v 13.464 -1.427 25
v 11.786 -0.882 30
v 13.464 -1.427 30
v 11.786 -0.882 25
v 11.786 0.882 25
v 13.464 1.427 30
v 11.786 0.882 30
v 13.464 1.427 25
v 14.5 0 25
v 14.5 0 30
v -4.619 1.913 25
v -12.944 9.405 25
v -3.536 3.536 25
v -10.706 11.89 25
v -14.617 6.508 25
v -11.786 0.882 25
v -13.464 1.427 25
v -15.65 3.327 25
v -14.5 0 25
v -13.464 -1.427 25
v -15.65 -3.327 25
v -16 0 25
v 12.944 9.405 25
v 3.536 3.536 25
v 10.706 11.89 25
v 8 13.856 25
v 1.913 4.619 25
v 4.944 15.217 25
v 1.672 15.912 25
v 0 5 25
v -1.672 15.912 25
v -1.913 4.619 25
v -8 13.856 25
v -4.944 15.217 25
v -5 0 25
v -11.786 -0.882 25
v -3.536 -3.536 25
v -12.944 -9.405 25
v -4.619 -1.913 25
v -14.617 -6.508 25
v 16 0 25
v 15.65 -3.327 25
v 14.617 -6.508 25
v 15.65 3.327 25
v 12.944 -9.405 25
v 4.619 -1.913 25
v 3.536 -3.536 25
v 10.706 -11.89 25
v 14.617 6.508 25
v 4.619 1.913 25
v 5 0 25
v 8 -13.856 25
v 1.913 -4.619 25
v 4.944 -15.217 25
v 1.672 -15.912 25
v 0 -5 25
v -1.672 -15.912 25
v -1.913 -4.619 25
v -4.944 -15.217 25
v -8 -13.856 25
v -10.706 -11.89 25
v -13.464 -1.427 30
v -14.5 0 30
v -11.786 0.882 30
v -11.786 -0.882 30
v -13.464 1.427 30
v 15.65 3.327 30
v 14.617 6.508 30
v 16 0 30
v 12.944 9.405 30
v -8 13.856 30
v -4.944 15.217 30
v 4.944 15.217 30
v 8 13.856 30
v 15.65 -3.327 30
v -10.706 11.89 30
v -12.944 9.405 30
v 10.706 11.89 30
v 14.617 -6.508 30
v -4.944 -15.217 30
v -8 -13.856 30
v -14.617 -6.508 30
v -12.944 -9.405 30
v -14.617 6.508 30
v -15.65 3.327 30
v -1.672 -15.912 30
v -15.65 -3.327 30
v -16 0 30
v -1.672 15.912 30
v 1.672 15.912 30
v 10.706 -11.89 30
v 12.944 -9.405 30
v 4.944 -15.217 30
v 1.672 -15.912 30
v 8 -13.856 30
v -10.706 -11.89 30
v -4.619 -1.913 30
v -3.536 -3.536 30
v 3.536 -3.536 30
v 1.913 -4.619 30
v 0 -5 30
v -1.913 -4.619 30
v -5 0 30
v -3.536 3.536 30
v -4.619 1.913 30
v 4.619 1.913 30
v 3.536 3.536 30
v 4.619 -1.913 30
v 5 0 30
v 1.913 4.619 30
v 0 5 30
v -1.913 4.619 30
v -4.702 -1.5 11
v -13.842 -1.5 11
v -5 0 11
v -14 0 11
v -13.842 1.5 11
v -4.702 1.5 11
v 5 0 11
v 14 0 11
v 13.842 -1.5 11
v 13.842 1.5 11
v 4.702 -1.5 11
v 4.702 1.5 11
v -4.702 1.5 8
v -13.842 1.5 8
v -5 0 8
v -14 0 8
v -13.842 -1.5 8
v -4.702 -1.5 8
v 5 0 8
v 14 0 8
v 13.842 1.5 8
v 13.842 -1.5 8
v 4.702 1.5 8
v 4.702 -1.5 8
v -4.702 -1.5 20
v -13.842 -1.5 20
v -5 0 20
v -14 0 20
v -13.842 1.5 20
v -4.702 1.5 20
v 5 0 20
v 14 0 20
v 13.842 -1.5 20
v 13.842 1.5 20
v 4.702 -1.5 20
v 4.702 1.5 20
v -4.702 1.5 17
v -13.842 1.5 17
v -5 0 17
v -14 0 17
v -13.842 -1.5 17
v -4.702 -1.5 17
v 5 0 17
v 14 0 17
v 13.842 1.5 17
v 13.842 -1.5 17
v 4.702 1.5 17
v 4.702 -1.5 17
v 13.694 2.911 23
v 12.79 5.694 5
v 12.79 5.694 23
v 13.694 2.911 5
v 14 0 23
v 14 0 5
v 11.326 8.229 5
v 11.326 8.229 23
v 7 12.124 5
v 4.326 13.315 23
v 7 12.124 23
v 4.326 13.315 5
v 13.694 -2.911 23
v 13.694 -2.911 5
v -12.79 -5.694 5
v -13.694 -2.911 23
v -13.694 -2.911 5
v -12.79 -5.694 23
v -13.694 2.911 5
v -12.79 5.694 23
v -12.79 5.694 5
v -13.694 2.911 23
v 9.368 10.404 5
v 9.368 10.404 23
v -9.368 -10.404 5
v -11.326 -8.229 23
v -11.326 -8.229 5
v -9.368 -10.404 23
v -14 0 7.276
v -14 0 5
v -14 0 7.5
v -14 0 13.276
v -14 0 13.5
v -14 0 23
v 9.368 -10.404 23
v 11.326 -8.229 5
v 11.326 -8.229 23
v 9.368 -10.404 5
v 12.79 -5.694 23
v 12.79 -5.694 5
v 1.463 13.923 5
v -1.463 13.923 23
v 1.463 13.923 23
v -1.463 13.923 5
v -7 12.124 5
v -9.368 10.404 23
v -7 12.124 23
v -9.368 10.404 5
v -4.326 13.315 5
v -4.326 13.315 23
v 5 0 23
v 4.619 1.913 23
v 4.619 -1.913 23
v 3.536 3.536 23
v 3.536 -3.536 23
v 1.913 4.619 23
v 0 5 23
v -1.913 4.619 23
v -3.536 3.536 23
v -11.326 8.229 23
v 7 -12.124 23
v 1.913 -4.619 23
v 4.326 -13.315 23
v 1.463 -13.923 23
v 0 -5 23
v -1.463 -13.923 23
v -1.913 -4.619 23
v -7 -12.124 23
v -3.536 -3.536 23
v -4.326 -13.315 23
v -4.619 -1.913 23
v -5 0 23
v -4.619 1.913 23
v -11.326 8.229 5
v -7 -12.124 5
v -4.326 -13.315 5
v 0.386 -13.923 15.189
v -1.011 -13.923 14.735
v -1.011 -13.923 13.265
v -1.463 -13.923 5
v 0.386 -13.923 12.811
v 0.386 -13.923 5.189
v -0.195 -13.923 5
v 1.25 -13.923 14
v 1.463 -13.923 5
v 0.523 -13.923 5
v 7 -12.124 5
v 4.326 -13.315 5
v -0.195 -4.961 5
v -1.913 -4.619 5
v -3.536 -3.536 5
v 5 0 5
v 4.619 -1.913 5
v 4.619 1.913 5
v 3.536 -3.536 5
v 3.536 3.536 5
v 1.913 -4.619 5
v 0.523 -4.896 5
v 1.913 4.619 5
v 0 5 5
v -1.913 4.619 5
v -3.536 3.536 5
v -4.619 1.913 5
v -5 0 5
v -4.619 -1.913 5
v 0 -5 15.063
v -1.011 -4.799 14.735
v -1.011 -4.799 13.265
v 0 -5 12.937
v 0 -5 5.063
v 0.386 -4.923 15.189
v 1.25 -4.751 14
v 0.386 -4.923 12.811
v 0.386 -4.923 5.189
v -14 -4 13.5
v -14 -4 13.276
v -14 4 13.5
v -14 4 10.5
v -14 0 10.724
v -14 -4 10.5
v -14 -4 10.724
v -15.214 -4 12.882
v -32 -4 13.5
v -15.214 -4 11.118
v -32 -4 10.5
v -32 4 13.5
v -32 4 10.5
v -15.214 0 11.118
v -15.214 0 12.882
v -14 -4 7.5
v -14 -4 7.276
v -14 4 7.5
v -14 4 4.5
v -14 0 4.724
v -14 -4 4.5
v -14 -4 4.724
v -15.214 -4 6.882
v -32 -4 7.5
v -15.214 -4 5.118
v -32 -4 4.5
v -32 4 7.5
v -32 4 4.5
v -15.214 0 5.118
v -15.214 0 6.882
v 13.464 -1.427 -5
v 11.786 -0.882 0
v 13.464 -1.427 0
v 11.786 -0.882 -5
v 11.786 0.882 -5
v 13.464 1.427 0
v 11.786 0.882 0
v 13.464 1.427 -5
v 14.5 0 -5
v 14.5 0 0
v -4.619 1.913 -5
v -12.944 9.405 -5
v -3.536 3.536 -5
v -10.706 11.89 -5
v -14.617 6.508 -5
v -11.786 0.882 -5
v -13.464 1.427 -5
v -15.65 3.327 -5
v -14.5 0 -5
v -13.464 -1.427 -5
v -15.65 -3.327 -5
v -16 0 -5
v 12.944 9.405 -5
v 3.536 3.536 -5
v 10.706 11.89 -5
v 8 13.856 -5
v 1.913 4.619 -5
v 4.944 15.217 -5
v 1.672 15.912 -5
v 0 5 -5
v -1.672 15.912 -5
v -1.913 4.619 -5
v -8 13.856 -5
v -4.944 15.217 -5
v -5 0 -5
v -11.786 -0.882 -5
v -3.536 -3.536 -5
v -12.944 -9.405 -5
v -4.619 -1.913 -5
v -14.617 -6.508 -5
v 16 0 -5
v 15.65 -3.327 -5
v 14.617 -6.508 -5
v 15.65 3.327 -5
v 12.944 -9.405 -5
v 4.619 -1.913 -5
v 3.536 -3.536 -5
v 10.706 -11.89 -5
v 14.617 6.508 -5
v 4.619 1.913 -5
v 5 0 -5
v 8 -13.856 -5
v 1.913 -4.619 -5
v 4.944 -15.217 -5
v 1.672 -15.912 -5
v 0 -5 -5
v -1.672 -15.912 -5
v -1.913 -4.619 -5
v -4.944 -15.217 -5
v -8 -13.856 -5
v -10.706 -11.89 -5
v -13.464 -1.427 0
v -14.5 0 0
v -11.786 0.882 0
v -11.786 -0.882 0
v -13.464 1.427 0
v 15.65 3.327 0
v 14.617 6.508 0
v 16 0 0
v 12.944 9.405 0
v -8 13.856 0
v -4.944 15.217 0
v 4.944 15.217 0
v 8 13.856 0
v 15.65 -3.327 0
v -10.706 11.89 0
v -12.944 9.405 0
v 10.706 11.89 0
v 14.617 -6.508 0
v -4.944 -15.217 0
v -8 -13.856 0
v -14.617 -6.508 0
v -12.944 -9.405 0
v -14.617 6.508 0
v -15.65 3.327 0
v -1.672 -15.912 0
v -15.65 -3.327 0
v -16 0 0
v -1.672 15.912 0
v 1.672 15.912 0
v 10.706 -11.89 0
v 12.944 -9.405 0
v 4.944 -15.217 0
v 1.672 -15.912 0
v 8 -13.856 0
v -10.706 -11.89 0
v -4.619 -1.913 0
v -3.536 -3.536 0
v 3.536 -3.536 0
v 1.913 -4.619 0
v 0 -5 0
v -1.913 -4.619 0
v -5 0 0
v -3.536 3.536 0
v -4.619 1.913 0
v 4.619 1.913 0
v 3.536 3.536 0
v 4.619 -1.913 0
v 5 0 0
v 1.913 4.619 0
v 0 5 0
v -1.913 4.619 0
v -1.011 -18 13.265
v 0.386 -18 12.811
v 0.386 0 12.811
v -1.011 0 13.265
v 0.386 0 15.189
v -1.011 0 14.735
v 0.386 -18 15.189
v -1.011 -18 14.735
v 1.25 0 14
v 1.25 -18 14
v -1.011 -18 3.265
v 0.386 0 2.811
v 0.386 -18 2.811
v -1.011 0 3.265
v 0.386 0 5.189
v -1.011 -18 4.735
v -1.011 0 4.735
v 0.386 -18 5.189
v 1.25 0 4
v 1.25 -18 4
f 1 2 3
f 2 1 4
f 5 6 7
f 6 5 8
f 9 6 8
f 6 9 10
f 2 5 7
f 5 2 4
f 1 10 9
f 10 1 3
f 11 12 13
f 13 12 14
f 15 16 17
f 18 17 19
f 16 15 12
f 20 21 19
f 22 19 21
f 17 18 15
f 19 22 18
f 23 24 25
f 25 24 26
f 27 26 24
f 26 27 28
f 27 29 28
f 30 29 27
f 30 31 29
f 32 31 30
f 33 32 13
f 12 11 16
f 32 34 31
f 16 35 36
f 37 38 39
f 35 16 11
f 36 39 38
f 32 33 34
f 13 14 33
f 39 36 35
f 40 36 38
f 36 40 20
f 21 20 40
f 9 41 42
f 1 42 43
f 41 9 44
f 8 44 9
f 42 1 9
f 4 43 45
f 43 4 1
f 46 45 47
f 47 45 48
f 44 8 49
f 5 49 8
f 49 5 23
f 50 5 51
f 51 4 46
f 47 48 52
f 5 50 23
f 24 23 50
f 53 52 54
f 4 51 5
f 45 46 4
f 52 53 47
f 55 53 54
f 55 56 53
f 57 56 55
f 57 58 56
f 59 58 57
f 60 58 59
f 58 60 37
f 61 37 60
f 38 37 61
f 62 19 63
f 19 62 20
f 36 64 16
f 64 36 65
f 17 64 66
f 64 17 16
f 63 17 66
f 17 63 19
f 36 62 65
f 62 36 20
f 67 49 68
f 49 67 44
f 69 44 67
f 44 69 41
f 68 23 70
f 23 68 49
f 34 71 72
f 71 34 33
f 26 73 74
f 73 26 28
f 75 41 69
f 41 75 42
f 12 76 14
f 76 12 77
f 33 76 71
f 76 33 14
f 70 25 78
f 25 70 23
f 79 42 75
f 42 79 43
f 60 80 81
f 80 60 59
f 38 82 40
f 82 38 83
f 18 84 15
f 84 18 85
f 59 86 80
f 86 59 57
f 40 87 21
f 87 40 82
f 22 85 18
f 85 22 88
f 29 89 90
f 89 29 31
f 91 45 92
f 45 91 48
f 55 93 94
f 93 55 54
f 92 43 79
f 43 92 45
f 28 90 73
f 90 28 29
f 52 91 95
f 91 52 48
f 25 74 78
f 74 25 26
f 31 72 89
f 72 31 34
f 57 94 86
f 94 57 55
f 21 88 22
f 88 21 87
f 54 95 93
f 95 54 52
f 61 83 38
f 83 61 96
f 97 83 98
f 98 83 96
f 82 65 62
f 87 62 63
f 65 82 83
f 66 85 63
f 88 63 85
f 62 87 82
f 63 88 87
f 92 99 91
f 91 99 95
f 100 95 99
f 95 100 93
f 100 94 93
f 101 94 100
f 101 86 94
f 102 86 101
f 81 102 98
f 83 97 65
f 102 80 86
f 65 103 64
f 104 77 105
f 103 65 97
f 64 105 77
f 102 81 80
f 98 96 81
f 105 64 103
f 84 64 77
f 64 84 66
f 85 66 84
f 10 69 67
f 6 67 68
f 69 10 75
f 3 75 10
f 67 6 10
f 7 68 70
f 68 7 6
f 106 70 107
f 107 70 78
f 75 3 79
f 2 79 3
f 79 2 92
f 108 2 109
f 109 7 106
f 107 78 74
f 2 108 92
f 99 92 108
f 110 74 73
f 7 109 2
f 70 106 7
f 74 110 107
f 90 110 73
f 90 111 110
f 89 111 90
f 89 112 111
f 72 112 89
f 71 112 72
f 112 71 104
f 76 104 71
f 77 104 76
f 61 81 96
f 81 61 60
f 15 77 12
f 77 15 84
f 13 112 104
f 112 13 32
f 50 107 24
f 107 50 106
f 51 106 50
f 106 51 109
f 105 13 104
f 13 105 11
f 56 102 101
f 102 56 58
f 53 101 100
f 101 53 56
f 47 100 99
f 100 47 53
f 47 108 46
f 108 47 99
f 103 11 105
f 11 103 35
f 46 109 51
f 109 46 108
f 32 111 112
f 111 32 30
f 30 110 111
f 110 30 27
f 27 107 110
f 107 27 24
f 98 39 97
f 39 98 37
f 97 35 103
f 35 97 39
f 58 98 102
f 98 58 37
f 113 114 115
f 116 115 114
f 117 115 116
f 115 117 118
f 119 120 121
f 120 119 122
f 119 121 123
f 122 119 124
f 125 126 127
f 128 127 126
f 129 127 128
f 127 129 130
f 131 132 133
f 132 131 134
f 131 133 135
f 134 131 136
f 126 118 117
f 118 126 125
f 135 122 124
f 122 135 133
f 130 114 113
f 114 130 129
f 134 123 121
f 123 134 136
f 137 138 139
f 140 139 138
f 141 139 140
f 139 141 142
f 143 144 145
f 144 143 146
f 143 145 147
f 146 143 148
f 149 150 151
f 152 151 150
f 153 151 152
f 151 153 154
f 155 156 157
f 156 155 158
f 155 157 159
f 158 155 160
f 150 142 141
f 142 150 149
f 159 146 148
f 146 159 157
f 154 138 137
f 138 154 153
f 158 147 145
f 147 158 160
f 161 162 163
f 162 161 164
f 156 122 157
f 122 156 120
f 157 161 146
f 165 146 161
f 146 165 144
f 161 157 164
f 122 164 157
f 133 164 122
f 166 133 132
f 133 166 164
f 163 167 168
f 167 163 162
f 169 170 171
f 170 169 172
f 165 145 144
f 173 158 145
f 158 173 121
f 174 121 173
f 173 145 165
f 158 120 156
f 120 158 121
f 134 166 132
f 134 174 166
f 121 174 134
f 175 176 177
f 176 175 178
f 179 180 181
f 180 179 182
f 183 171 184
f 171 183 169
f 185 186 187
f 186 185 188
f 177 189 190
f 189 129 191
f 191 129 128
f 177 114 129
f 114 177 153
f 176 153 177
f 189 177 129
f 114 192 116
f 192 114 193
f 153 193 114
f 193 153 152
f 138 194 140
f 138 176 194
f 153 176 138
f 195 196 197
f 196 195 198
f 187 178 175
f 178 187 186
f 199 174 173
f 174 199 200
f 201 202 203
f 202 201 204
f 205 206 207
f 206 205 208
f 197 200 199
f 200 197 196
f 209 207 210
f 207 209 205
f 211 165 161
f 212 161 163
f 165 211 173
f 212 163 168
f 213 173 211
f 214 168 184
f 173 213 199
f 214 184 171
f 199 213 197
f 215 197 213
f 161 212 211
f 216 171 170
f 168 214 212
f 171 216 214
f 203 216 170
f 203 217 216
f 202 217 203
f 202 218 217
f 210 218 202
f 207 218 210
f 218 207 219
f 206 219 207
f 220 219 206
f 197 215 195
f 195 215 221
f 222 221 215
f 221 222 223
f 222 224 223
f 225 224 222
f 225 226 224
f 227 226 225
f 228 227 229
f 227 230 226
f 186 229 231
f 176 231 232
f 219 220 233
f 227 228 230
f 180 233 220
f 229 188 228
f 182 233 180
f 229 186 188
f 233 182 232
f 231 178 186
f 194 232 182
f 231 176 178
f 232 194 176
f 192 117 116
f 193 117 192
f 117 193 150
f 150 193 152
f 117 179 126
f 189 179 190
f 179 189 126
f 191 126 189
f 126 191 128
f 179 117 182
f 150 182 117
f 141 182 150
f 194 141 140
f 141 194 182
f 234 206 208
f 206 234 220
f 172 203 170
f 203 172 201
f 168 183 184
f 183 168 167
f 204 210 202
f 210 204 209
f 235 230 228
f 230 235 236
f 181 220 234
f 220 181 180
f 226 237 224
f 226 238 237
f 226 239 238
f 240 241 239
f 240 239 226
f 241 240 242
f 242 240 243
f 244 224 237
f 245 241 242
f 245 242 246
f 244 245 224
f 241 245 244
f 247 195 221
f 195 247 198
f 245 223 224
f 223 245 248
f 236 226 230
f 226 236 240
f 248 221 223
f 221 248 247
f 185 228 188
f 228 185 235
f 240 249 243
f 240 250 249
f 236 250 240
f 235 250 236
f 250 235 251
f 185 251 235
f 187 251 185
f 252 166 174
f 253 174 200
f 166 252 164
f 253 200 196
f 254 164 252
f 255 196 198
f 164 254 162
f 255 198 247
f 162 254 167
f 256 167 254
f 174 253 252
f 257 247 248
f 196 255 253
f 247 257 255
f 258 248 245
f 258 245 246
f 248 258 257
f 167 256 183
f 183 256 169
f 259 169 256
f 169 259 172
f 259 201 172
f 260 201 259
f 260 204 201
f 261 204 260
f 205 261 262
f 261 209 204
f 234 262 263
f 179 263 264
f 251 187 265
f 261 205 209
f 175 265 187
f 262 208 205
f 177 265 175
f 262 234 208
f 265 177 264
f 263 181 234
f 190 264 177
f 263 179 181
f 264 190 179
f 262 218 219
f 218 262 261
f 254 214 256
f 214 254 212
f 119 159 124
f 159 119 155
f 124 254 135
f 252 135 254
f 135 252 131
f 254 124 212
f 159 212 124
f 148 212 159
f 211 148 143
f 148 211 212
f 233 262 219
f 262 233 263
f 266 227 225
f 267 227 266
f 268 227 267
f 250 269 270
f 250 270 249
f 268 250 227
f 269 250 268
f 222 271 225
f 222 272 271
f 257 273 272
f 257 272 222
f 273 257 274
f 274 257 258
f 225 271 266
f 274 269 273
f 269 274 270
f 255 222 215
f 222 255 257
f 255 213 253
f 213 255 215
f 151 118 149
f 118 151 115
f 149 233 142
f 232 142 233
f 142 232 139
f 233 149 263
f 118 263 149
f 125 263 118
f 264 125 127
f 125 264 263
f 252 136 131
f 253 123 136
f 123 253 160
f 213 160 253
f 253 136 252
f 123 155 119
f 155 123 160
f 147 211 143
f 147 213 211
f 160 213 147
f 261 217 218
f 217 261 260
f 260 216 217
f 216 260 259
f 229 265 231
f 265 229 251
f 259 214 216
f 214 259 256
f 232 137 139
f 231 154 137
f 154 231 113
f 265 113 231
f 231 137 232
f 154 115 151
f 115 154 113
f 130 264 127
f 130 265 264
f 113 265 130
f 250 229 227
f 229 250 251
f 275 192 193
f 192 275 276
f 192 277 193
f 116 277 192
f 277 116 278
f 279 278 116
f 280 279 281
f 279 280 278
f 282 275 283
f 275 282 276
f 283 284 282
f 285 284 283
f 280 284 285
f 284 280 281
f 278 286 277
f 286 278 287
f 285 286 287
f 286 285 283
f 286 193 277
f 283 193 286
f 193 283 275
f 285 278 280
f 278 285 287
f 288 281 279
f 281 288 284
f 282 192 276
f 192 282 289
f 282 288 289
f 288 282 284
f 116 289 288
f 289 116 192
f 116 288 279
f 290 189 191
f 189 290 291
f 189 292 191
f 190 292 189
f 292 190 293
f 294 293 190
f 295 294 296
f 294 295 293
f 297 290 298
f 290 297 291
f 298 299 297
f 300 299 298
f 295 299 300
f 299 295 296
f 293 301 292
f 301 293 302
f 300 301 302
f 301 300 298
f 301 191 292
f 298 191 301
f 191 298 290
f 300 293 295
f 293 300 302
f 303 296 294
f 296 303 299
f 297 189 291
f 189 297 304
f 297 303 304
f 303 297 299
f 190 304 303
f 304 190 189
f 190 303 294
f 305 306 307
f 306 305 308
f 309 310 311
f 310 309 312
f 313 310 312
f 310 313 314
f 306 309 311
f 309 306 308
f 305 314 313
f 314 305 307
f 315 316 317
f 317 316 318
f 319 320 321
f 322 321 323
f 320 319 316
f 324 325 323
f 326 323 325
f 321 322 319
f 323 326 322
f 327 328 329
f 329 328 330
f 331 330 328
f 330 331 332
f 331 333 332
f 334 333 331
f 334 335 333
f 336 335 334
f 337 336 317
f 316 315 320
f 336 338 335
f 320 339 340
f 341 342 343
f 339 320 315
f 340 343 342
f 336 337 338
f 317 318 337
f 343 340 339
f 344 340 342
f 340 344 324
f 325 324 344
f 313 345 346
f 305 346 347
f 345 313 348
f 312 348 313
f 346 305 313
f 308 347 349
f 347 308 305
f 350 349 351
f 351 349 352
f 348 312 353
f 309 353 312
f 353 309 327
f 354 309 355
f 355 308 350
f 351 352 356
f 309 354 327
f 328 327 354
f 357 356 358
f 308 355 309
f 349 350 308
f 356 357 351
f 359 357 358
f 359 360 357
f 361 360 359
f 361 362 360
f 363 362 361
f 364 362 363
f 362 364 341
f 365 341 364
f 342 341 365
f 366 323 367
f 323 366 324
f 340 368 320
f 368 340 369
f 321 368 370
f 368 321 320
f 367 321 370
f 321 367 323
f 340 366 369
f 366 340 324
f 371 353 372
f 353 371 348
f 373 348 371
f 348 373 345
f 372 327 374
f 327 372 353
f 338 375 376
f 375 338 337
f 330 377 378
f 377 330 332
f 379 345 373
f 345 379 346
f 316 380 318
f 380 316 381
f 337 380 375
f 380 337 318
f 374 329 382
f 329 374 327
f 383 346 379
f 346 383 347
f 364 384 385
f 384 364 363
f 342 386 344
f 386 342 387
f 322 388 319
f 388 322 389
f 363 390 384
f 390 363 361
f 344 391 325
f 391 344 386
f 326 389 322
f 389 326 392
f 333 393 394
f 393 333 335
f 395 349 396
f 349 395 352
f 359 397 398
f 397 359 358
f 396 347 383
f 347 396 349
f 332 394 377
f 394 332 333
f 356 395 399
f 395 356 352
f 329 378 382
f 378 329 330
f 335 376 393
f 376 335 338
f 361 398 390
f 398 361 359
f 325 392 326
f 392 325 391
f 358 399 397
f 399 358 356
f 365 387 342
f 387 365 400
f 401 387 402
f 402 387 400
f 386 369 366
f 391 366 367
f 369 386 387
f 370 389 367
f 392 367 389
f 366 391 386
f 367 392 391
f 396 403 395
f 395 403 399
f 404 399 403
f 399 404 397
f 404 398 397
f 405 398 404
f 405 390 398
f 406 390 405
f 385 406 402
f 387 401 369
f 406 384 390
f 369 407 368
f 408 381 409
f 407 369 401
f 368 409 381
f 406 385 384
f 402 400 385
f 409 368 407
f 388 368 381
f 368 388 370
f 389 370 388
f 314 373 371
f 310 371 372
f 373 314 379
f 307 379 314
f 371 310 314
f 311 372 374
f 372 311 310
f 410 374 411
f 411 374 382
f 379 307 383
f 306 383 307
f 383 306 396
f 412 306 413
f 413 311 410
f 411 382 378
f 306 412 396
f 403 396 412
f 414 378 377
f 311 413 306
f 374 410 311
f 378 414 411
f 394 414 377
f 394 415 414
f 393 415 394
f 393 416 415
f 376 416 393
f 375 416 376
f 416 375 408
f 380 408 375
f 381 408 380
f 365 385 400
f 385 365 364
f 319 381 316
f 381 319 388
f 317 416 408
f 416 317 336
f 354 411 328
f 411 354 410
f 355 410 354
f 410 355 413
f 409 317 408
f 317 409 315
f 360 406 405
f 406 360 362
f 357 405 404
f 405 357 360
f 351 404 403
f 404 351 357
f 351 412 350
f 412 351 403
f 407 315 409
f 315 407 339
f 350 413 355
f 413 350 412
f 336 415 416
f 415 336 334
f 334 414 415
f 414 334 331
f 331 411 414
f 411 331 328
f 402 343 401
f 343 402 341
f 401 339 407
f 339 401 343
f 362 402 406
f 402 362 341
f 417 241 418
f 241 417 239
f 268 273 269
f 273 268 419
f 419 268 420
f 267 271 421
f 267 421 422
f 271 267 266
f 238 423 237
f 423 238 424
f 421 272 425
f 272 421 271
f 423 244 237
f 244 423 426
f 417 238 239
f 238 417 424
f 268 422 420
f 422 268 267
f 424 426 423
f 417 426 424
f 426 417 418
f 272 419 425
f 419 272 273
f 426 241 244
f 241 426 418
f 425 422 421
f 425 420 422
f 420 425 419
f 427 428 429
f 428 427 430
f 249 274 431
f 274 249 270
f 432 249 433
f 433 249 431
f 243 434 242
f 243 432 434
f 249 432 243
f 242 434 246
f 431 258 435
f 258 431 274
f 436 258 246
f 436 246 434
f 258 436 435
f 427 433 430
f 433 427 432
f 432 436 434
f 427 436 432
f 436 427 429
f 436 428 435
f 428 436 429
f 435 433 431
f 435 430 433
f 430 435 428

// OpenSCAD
module end_plate() {
    difference() {
        cylinder(h = 5, d = 32); // Adjusted size for the main disc
        translate([0, 0, -1]) cylinder(h = 7, d = 10); // Central hole
        for (i = [0, 180]) {
            rotate([0, 0, i]) translate([13, 0, 0]) cylinder(h = 7, d = 3); // Adjusted screw holes position
        }
    }
}

module central_body() {
    difference() {
        cylinder(h = 18, d = 28); // Slimmed down the central body
        translate([0, 0, -1]) cylinder(h = 22, d = 10); // Central bore
        for (z = [4.5, 13.5]) {
            translate([0, 0, z]) cube([28, 3, 3], center = true); // Adjusted grooves for cross bars
        }
    }
}

module cross_bar() {
    difference() {
        translate([-9, 0, 0]) cube([18, 3, 8], center = true); // Adjusted dimensions for snug fit
        cylinder(h = 8, d = 3); // Central hole for pin
    }
}

module pin() {
    cylinder(h = 18, d = 2.5); // Adjusted pin dimensions to fit without protrusion
}

module flexible_coupling() {
    translate([0, 0, 25]) end_plate();
    translate([0, 0, 5]) central_body();
    translate([-14, 0, 12]) rotate([90, 0, 0]) cross_bar();
    translate([-14, 0, 6]) rotate([90, 0, 0]) cross_bar();
    translate([0, 0, 14]) rotate([90, 0, 0]) pin();
    translate([0, 0, 4]) rotate([90, 0, 0]) pin();
    translate([0, 0, -5]) end_plate();
}

flexible_coupling();
